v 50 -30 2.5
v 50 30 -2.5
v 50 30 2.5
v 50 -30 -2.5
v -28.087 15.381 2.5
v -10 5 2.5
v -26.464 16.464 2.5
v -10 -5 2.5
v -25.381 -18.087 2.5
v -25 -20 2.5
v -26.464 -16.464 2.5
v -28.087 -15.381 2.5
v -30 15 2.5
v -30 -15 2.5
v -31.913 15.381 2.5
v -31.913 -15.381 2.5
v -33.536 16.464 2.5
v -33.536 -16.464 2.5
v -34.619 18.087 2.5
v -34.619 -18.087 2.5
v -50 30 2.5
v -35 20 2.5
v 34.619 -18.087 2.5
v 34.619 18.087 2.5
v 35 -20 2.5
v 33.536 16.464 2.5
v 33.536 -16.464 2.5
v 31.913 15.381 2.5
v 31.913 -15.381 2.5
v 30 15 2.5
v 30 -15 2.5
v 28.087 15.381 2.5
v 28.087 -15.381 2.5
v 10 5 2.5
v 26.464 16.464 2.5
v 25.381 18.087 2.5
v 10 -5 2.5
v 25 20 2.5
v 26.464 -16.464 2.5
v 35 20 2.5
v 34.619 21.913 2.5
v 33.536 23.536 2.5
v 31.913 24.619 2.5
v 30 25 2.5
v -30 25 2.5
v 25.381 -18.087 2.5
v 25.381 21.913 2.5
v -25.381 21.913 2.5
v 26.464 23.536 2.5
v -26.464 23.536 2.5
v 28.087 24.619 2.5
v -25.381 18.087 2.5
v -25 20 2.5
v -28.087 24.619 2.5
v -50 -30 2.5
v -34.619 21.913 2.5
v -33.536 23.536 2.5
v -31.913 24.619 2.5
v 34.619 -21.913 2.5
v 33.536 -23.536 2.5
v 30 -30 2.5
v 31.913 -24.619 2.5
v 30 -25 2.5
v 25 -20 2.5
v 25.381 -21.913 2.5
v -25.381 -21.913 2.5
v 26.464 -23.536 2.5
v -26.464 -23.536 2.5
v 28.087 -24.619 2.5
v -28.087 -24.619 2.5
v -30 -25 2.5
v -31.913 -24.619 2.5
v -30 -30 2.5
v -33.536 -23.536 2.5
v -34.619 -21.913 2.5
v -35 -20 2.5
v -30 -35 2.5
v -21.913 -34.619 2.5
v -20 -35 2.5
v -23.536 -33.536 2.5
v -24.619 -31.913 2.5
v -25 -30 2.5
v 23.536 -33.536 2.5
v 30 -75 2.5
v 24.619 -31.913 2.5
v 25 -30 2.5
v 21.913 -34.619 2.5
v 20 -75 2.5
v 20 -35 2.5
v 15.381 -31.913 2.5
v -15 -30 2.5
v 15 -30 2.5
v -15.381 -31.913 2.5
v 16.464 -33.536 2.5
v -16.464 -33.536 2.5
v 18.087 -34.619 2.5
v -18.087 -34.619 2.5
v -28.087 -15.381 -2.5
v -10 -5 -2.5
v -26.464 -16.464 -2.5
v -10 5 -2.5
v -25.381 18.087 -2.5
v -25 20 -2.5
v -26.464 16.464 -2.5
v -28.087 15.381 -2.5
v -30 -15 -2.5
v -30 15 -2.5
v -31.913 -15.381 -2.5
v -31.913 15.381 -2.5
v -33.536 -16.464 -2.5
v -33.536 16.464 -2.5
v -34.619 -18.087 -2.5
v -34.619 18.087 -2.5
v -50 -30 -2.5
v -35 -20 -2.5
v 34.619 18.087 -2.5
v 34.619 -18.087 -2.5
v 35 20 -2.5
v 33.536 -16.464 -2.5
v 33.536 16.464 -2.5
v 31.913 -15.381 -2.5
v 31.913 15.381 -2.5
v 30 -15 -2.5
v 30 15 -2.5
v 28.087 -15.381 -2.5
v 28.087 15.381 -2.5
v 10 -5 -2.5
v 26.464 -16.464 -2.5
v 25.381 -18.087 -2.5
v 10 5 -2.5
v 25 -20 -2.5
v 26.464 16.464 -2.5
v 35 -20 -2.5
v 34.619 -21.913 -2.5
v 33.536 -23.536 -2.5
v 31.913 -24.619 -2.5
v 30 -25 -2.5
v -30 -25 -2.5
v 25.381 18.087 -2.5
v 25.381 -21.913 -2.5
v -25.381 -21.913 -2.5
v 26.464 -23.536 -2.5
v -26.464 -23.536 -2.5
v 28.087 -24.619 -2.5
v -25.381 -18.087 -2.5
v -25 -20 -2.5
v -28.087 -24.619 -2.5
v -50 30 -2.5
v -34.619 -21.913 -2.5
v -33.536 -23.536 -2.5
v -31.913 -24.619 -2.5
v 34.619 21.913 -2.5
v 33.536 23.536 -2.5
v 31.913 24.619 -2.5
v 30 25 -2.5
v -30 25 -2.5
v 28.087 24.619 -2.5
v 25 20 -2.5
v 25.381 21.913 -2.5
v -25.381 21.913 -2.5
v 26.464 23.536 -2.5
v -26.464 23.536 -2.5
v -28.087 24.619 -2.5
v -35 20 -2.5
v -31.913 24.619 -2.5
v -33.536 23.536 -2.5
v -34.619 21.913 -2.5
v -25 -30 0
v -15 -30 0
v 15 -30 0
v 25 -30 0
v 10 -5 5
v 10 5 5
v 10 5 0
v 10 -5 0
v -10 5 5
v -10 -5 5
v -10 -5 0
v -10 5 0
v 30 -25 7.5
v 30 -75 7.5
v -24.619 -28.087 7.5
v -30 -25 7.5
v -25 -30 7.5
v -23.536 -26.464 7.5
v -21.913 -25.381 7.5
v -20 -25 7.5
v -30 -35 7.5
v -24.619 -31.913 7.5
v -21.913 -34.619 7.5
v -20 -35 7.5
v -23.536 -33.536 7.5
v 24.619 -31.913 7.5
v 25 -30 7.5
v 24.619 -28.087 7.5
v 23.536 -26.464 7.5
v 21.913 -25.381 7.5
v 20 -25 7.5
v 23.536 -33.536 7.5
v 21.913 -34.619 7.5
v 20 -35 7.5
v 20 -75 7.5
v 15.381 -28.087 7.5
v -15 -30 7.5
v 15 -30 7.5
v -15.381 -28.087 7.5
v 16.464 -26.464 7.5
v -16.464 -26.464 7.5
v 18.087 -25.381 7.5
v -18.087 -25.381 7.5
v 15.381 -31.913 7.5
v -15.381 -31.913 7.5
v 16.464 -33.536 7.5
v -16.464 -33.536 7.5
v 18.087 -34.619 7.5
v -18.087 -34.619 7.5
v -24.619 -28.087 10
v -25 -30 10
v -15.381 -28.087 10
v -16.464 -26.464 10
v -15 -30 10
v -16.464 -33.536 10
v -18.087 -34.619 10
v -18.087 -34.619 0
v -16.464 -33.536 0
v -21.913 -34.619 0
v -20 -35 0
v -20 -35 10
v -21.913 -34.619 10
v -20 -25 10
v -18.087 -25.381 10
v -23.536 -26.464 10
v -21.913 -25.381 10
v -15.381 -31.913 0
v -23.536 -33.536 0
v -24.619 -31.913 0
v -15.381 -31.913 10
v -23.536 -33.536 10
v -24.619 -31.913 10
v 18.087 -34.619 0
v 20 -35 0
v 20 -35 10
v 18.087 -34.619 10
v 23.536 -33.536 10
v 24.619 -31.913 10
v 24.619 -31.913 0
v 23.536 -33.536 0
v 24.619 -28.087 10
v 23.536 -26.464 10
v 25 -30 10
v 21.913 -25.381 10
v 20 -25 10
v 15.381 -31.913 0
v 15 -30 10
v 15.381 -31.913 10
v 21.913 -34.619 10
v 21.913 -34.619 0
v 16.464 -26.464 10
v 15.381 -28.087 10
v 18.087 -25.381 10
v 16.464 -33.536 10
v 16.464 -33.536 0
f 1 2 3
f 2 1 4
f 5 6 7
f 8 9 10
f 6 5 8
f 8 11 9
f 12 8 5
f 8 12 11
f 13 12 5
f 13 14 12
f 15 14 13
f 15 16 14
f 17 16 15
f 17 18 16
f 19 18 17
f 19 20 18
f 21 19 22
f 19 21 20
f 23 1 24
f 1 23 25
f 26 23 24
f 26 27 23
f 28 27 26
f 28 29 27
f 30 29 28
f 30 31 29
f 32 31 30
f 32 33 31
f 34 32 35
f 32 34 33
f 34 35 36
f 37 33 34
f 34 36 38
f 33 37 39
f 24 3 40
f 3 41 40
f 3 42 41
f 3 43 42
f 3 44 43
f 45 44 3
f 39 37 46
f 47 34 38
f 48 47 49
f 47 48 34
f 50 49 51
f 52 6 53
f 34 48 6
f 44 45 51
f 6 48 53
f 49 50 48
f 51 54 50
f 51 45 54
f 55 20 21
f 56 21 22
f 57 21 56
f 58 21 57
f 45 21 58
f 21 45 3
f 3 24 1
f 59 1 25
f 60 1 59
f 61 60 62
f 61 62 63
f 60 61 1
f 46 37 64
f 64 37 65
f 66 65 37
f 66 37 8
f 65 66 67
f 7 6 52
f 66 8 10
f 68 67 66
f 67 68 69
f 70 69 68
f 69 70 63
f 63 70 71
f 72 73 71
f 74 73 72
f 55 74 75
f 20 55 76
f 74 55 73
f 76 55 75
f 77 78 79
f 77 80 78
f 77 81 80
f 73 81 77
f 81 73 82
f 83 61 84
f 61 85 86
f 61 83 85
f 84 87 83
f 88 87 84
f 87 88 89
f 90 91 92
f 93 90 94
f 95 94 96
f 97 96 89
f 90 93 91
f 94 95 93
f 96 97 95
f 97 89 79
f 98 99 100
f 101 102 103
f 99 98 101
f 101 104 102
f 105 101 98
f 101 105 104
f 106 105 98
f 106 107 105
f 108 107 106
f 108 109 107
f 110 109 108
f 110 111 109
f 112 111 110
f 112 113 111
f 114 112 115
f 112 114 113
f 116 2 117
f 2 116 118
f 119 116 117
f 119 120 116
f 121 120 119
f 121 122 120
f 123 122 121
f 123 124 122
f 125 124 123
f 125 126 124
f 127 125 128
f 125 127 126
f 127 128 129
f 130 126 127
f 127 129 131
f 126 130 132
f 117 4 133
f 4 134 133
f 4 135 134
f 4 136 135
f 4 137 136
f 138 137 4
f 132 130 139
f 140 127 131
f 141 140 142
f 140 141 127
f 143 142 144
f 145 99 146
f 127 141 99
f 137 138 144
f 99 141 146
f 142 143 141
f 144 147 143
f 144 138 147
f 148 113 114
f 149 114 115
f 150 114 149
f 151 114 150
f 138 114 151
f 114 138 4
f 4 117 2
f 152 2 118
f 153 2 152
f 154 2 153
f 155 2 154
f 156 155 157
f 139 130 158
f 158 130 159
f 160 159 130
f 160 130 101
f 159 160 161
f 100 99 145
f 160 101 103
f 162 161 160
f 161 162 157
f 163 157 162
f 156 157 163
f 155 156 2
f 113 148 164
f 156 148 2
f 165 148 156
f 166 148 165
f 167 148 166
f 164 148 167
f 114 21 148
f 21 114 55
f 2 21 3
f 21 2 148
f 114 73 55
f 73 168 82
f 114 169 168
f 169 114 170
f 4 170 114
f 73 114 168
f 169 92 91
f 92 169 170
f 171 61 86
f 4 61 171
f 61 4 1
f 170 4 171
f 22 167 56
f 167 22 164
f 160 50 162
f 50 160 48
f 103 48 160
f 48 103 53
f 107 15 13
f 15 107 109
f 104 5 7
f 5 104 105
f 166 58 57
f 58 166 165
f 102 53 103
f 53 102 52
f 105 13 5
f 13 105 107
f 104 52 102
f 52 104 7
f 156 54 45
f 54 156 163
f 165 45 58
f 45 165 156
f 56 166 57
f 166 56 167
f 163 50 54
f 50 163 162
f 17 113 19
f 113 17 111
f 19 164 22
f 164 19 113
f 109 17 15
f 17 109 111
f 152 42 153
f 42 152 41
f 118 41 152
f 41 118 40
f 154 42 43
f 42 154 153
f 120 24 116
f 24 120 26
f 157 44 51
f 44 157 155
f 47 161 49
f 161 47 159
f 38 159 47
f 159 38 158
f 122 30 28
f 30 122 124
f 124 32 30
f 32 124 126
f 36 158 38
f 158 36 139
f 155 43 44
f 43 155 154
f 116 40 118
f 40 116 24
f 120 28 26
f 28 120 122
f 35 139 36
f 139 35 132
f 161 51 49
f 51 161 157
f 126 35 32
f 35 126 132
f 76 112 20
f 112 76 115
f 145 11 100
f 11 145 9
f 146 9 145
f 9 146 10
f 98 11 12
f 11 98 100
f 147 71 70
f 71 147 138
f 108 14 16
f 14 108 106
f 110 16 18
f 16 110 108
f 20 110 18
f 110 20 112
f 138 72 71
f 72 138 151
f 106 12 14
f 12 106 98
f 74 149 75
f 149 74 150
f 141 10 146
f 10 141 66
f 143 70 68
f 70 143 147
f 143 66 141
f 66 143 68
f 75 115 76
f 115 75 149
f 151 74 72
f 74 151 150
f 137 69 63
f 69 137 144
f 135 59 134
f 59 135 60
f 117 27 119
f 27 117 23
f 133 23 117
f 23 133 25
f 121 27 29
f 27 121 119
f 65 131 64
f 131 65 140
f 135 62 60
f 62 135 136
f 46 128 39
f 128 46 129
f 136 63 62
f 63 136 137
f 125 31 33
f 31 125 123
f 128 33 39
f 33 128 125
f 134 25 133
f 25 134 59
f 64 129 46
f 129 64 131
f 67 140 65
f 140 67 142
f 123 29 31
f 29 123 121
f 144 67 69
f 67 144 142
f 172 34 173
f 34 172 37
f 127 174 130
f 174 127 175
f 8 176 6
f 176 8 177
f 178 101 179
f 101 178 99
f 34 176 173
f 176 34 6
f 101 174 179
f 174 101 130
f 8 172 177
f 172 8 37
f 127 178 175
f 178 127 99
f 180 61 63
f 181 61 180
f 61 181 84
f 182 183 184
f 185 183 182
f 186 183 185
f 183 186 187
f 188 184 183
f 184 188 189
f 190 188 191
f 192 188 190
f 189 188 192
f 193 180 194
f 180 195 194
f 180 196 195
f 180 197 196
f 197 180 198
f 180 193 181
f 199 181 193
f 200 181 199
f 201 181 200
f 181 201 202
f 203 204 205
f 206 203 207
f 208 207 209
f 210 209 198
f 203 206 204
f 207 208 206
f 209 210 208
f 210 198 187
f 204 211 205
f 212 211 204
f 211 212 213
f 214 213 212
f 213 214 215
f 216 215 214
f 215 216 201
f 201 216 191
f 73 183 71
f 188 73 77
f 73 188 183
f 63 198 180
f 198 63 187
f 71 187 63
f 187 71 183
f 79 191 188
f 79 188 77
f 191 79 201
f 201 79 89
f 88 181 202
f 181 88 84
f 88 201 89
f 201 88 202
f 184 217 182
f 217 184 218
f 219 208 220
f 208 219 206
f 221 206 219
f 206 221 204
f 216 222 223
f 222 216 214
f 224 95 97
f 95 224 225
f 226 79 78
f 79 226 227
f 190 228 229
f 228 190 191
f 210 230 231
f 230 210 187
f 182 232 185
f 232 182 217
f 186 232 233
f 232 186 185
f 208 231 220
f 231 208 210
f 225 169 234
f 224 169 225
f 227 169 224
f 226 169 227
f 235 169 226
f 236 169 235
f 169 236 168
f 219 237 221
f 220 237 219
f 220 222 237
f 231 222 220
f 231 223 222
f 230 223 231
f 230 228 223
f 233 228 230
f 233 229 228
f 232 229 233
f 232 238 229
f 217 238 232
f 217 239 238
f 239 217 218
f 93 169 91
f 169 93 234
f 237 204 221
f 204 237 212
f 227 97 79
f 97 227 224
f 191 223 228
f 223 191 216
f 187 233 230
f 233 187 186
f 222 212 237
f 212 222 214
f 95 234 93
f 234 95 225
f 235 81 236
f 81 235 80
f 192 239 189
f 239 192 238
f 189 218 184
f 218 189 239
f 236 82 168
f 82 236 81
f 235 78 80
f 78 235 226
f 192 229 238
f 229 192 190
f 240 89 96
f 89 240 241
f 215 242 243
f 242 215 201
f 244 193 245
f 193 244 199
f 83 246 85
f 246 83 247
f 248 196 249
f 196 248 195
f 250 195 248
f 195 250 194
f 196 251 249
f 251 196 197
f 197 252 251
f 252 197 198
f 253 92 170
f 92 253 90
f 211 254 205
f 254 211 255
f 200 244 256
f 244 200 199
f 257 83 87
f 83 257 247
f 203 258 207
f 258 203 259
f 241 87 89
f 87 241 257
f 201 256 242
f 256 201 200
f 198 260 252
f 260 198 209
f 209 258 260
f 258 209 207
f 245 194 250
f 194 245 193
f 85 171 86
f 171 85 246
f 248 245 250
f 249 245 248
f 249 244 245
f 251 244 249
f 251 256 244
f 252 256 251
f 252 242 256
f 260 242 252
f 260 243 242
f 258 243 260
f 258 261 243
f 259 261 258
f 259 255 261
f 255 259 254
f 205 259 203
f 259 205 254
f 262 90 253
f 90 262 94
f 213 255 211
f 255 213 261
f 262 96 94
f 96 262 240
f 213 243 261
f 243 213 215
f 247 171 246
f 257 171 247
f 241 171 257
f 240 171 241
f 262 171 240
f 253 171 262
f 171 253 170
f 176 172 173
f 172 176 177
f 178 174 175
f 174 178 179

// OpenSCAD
// Base Plate
module base_plate() {
    difference() {
        // Main rectangular plate
        cube([100, 60, 5], center = true);
        
        // Circular holes
        translate([-30, 20, 2.5]) cylinder(r = 5, h = 10, center = true);
        translate([30, 20, 2.5]) cylinder(r = 5, h = 10, center = true);
        translate([-30, -20, 2.5]) cylinder(r = 5, h = 10, center = true);
        translate([30, -20, 2.5]) cylinder(r = 5, h = 10, center = true);
        
        // Rectangular slot
        translate([0, 0, 2.5]) cube([20, 10, 10], center = true);
    }
}

// Rectangular Block
module rectangular_block() {
    cube([20, 10, 5], center = true);
}

// L-Shaped Bracket
module L_shaped_bracket() {
    union() {
        // Horizontal arm
        translate([0, 0, 2.5]) cube([60, 10, 5], center = true);
        
        // Vertical arm
        translate([25, -25, 2.5]) rotate([0, 0, 90]) cube([40, 10, 5], center = true);
        
        // Circular holes on horizontal arm
        translate([-20, 0, 2.5]) cylinder(r = 5, h = 10, center = true);
        translate([20, 0, 2.5]) cylinder(r = 5, h = 10, center = true);
    }
}

// Assembly
module assembly() {
    // Layer 1: Rectangular Block inserted into Base Plate
    base_plate();
    translate([0, 0, 2.5]) rectangular_block();
    
    // Layer 3: L-Shaped Bracket mounted onto Base Plate
    translate([0, -30, 2.5]) L_shaped_bracket();
}

// Render the assembly
assembly();
